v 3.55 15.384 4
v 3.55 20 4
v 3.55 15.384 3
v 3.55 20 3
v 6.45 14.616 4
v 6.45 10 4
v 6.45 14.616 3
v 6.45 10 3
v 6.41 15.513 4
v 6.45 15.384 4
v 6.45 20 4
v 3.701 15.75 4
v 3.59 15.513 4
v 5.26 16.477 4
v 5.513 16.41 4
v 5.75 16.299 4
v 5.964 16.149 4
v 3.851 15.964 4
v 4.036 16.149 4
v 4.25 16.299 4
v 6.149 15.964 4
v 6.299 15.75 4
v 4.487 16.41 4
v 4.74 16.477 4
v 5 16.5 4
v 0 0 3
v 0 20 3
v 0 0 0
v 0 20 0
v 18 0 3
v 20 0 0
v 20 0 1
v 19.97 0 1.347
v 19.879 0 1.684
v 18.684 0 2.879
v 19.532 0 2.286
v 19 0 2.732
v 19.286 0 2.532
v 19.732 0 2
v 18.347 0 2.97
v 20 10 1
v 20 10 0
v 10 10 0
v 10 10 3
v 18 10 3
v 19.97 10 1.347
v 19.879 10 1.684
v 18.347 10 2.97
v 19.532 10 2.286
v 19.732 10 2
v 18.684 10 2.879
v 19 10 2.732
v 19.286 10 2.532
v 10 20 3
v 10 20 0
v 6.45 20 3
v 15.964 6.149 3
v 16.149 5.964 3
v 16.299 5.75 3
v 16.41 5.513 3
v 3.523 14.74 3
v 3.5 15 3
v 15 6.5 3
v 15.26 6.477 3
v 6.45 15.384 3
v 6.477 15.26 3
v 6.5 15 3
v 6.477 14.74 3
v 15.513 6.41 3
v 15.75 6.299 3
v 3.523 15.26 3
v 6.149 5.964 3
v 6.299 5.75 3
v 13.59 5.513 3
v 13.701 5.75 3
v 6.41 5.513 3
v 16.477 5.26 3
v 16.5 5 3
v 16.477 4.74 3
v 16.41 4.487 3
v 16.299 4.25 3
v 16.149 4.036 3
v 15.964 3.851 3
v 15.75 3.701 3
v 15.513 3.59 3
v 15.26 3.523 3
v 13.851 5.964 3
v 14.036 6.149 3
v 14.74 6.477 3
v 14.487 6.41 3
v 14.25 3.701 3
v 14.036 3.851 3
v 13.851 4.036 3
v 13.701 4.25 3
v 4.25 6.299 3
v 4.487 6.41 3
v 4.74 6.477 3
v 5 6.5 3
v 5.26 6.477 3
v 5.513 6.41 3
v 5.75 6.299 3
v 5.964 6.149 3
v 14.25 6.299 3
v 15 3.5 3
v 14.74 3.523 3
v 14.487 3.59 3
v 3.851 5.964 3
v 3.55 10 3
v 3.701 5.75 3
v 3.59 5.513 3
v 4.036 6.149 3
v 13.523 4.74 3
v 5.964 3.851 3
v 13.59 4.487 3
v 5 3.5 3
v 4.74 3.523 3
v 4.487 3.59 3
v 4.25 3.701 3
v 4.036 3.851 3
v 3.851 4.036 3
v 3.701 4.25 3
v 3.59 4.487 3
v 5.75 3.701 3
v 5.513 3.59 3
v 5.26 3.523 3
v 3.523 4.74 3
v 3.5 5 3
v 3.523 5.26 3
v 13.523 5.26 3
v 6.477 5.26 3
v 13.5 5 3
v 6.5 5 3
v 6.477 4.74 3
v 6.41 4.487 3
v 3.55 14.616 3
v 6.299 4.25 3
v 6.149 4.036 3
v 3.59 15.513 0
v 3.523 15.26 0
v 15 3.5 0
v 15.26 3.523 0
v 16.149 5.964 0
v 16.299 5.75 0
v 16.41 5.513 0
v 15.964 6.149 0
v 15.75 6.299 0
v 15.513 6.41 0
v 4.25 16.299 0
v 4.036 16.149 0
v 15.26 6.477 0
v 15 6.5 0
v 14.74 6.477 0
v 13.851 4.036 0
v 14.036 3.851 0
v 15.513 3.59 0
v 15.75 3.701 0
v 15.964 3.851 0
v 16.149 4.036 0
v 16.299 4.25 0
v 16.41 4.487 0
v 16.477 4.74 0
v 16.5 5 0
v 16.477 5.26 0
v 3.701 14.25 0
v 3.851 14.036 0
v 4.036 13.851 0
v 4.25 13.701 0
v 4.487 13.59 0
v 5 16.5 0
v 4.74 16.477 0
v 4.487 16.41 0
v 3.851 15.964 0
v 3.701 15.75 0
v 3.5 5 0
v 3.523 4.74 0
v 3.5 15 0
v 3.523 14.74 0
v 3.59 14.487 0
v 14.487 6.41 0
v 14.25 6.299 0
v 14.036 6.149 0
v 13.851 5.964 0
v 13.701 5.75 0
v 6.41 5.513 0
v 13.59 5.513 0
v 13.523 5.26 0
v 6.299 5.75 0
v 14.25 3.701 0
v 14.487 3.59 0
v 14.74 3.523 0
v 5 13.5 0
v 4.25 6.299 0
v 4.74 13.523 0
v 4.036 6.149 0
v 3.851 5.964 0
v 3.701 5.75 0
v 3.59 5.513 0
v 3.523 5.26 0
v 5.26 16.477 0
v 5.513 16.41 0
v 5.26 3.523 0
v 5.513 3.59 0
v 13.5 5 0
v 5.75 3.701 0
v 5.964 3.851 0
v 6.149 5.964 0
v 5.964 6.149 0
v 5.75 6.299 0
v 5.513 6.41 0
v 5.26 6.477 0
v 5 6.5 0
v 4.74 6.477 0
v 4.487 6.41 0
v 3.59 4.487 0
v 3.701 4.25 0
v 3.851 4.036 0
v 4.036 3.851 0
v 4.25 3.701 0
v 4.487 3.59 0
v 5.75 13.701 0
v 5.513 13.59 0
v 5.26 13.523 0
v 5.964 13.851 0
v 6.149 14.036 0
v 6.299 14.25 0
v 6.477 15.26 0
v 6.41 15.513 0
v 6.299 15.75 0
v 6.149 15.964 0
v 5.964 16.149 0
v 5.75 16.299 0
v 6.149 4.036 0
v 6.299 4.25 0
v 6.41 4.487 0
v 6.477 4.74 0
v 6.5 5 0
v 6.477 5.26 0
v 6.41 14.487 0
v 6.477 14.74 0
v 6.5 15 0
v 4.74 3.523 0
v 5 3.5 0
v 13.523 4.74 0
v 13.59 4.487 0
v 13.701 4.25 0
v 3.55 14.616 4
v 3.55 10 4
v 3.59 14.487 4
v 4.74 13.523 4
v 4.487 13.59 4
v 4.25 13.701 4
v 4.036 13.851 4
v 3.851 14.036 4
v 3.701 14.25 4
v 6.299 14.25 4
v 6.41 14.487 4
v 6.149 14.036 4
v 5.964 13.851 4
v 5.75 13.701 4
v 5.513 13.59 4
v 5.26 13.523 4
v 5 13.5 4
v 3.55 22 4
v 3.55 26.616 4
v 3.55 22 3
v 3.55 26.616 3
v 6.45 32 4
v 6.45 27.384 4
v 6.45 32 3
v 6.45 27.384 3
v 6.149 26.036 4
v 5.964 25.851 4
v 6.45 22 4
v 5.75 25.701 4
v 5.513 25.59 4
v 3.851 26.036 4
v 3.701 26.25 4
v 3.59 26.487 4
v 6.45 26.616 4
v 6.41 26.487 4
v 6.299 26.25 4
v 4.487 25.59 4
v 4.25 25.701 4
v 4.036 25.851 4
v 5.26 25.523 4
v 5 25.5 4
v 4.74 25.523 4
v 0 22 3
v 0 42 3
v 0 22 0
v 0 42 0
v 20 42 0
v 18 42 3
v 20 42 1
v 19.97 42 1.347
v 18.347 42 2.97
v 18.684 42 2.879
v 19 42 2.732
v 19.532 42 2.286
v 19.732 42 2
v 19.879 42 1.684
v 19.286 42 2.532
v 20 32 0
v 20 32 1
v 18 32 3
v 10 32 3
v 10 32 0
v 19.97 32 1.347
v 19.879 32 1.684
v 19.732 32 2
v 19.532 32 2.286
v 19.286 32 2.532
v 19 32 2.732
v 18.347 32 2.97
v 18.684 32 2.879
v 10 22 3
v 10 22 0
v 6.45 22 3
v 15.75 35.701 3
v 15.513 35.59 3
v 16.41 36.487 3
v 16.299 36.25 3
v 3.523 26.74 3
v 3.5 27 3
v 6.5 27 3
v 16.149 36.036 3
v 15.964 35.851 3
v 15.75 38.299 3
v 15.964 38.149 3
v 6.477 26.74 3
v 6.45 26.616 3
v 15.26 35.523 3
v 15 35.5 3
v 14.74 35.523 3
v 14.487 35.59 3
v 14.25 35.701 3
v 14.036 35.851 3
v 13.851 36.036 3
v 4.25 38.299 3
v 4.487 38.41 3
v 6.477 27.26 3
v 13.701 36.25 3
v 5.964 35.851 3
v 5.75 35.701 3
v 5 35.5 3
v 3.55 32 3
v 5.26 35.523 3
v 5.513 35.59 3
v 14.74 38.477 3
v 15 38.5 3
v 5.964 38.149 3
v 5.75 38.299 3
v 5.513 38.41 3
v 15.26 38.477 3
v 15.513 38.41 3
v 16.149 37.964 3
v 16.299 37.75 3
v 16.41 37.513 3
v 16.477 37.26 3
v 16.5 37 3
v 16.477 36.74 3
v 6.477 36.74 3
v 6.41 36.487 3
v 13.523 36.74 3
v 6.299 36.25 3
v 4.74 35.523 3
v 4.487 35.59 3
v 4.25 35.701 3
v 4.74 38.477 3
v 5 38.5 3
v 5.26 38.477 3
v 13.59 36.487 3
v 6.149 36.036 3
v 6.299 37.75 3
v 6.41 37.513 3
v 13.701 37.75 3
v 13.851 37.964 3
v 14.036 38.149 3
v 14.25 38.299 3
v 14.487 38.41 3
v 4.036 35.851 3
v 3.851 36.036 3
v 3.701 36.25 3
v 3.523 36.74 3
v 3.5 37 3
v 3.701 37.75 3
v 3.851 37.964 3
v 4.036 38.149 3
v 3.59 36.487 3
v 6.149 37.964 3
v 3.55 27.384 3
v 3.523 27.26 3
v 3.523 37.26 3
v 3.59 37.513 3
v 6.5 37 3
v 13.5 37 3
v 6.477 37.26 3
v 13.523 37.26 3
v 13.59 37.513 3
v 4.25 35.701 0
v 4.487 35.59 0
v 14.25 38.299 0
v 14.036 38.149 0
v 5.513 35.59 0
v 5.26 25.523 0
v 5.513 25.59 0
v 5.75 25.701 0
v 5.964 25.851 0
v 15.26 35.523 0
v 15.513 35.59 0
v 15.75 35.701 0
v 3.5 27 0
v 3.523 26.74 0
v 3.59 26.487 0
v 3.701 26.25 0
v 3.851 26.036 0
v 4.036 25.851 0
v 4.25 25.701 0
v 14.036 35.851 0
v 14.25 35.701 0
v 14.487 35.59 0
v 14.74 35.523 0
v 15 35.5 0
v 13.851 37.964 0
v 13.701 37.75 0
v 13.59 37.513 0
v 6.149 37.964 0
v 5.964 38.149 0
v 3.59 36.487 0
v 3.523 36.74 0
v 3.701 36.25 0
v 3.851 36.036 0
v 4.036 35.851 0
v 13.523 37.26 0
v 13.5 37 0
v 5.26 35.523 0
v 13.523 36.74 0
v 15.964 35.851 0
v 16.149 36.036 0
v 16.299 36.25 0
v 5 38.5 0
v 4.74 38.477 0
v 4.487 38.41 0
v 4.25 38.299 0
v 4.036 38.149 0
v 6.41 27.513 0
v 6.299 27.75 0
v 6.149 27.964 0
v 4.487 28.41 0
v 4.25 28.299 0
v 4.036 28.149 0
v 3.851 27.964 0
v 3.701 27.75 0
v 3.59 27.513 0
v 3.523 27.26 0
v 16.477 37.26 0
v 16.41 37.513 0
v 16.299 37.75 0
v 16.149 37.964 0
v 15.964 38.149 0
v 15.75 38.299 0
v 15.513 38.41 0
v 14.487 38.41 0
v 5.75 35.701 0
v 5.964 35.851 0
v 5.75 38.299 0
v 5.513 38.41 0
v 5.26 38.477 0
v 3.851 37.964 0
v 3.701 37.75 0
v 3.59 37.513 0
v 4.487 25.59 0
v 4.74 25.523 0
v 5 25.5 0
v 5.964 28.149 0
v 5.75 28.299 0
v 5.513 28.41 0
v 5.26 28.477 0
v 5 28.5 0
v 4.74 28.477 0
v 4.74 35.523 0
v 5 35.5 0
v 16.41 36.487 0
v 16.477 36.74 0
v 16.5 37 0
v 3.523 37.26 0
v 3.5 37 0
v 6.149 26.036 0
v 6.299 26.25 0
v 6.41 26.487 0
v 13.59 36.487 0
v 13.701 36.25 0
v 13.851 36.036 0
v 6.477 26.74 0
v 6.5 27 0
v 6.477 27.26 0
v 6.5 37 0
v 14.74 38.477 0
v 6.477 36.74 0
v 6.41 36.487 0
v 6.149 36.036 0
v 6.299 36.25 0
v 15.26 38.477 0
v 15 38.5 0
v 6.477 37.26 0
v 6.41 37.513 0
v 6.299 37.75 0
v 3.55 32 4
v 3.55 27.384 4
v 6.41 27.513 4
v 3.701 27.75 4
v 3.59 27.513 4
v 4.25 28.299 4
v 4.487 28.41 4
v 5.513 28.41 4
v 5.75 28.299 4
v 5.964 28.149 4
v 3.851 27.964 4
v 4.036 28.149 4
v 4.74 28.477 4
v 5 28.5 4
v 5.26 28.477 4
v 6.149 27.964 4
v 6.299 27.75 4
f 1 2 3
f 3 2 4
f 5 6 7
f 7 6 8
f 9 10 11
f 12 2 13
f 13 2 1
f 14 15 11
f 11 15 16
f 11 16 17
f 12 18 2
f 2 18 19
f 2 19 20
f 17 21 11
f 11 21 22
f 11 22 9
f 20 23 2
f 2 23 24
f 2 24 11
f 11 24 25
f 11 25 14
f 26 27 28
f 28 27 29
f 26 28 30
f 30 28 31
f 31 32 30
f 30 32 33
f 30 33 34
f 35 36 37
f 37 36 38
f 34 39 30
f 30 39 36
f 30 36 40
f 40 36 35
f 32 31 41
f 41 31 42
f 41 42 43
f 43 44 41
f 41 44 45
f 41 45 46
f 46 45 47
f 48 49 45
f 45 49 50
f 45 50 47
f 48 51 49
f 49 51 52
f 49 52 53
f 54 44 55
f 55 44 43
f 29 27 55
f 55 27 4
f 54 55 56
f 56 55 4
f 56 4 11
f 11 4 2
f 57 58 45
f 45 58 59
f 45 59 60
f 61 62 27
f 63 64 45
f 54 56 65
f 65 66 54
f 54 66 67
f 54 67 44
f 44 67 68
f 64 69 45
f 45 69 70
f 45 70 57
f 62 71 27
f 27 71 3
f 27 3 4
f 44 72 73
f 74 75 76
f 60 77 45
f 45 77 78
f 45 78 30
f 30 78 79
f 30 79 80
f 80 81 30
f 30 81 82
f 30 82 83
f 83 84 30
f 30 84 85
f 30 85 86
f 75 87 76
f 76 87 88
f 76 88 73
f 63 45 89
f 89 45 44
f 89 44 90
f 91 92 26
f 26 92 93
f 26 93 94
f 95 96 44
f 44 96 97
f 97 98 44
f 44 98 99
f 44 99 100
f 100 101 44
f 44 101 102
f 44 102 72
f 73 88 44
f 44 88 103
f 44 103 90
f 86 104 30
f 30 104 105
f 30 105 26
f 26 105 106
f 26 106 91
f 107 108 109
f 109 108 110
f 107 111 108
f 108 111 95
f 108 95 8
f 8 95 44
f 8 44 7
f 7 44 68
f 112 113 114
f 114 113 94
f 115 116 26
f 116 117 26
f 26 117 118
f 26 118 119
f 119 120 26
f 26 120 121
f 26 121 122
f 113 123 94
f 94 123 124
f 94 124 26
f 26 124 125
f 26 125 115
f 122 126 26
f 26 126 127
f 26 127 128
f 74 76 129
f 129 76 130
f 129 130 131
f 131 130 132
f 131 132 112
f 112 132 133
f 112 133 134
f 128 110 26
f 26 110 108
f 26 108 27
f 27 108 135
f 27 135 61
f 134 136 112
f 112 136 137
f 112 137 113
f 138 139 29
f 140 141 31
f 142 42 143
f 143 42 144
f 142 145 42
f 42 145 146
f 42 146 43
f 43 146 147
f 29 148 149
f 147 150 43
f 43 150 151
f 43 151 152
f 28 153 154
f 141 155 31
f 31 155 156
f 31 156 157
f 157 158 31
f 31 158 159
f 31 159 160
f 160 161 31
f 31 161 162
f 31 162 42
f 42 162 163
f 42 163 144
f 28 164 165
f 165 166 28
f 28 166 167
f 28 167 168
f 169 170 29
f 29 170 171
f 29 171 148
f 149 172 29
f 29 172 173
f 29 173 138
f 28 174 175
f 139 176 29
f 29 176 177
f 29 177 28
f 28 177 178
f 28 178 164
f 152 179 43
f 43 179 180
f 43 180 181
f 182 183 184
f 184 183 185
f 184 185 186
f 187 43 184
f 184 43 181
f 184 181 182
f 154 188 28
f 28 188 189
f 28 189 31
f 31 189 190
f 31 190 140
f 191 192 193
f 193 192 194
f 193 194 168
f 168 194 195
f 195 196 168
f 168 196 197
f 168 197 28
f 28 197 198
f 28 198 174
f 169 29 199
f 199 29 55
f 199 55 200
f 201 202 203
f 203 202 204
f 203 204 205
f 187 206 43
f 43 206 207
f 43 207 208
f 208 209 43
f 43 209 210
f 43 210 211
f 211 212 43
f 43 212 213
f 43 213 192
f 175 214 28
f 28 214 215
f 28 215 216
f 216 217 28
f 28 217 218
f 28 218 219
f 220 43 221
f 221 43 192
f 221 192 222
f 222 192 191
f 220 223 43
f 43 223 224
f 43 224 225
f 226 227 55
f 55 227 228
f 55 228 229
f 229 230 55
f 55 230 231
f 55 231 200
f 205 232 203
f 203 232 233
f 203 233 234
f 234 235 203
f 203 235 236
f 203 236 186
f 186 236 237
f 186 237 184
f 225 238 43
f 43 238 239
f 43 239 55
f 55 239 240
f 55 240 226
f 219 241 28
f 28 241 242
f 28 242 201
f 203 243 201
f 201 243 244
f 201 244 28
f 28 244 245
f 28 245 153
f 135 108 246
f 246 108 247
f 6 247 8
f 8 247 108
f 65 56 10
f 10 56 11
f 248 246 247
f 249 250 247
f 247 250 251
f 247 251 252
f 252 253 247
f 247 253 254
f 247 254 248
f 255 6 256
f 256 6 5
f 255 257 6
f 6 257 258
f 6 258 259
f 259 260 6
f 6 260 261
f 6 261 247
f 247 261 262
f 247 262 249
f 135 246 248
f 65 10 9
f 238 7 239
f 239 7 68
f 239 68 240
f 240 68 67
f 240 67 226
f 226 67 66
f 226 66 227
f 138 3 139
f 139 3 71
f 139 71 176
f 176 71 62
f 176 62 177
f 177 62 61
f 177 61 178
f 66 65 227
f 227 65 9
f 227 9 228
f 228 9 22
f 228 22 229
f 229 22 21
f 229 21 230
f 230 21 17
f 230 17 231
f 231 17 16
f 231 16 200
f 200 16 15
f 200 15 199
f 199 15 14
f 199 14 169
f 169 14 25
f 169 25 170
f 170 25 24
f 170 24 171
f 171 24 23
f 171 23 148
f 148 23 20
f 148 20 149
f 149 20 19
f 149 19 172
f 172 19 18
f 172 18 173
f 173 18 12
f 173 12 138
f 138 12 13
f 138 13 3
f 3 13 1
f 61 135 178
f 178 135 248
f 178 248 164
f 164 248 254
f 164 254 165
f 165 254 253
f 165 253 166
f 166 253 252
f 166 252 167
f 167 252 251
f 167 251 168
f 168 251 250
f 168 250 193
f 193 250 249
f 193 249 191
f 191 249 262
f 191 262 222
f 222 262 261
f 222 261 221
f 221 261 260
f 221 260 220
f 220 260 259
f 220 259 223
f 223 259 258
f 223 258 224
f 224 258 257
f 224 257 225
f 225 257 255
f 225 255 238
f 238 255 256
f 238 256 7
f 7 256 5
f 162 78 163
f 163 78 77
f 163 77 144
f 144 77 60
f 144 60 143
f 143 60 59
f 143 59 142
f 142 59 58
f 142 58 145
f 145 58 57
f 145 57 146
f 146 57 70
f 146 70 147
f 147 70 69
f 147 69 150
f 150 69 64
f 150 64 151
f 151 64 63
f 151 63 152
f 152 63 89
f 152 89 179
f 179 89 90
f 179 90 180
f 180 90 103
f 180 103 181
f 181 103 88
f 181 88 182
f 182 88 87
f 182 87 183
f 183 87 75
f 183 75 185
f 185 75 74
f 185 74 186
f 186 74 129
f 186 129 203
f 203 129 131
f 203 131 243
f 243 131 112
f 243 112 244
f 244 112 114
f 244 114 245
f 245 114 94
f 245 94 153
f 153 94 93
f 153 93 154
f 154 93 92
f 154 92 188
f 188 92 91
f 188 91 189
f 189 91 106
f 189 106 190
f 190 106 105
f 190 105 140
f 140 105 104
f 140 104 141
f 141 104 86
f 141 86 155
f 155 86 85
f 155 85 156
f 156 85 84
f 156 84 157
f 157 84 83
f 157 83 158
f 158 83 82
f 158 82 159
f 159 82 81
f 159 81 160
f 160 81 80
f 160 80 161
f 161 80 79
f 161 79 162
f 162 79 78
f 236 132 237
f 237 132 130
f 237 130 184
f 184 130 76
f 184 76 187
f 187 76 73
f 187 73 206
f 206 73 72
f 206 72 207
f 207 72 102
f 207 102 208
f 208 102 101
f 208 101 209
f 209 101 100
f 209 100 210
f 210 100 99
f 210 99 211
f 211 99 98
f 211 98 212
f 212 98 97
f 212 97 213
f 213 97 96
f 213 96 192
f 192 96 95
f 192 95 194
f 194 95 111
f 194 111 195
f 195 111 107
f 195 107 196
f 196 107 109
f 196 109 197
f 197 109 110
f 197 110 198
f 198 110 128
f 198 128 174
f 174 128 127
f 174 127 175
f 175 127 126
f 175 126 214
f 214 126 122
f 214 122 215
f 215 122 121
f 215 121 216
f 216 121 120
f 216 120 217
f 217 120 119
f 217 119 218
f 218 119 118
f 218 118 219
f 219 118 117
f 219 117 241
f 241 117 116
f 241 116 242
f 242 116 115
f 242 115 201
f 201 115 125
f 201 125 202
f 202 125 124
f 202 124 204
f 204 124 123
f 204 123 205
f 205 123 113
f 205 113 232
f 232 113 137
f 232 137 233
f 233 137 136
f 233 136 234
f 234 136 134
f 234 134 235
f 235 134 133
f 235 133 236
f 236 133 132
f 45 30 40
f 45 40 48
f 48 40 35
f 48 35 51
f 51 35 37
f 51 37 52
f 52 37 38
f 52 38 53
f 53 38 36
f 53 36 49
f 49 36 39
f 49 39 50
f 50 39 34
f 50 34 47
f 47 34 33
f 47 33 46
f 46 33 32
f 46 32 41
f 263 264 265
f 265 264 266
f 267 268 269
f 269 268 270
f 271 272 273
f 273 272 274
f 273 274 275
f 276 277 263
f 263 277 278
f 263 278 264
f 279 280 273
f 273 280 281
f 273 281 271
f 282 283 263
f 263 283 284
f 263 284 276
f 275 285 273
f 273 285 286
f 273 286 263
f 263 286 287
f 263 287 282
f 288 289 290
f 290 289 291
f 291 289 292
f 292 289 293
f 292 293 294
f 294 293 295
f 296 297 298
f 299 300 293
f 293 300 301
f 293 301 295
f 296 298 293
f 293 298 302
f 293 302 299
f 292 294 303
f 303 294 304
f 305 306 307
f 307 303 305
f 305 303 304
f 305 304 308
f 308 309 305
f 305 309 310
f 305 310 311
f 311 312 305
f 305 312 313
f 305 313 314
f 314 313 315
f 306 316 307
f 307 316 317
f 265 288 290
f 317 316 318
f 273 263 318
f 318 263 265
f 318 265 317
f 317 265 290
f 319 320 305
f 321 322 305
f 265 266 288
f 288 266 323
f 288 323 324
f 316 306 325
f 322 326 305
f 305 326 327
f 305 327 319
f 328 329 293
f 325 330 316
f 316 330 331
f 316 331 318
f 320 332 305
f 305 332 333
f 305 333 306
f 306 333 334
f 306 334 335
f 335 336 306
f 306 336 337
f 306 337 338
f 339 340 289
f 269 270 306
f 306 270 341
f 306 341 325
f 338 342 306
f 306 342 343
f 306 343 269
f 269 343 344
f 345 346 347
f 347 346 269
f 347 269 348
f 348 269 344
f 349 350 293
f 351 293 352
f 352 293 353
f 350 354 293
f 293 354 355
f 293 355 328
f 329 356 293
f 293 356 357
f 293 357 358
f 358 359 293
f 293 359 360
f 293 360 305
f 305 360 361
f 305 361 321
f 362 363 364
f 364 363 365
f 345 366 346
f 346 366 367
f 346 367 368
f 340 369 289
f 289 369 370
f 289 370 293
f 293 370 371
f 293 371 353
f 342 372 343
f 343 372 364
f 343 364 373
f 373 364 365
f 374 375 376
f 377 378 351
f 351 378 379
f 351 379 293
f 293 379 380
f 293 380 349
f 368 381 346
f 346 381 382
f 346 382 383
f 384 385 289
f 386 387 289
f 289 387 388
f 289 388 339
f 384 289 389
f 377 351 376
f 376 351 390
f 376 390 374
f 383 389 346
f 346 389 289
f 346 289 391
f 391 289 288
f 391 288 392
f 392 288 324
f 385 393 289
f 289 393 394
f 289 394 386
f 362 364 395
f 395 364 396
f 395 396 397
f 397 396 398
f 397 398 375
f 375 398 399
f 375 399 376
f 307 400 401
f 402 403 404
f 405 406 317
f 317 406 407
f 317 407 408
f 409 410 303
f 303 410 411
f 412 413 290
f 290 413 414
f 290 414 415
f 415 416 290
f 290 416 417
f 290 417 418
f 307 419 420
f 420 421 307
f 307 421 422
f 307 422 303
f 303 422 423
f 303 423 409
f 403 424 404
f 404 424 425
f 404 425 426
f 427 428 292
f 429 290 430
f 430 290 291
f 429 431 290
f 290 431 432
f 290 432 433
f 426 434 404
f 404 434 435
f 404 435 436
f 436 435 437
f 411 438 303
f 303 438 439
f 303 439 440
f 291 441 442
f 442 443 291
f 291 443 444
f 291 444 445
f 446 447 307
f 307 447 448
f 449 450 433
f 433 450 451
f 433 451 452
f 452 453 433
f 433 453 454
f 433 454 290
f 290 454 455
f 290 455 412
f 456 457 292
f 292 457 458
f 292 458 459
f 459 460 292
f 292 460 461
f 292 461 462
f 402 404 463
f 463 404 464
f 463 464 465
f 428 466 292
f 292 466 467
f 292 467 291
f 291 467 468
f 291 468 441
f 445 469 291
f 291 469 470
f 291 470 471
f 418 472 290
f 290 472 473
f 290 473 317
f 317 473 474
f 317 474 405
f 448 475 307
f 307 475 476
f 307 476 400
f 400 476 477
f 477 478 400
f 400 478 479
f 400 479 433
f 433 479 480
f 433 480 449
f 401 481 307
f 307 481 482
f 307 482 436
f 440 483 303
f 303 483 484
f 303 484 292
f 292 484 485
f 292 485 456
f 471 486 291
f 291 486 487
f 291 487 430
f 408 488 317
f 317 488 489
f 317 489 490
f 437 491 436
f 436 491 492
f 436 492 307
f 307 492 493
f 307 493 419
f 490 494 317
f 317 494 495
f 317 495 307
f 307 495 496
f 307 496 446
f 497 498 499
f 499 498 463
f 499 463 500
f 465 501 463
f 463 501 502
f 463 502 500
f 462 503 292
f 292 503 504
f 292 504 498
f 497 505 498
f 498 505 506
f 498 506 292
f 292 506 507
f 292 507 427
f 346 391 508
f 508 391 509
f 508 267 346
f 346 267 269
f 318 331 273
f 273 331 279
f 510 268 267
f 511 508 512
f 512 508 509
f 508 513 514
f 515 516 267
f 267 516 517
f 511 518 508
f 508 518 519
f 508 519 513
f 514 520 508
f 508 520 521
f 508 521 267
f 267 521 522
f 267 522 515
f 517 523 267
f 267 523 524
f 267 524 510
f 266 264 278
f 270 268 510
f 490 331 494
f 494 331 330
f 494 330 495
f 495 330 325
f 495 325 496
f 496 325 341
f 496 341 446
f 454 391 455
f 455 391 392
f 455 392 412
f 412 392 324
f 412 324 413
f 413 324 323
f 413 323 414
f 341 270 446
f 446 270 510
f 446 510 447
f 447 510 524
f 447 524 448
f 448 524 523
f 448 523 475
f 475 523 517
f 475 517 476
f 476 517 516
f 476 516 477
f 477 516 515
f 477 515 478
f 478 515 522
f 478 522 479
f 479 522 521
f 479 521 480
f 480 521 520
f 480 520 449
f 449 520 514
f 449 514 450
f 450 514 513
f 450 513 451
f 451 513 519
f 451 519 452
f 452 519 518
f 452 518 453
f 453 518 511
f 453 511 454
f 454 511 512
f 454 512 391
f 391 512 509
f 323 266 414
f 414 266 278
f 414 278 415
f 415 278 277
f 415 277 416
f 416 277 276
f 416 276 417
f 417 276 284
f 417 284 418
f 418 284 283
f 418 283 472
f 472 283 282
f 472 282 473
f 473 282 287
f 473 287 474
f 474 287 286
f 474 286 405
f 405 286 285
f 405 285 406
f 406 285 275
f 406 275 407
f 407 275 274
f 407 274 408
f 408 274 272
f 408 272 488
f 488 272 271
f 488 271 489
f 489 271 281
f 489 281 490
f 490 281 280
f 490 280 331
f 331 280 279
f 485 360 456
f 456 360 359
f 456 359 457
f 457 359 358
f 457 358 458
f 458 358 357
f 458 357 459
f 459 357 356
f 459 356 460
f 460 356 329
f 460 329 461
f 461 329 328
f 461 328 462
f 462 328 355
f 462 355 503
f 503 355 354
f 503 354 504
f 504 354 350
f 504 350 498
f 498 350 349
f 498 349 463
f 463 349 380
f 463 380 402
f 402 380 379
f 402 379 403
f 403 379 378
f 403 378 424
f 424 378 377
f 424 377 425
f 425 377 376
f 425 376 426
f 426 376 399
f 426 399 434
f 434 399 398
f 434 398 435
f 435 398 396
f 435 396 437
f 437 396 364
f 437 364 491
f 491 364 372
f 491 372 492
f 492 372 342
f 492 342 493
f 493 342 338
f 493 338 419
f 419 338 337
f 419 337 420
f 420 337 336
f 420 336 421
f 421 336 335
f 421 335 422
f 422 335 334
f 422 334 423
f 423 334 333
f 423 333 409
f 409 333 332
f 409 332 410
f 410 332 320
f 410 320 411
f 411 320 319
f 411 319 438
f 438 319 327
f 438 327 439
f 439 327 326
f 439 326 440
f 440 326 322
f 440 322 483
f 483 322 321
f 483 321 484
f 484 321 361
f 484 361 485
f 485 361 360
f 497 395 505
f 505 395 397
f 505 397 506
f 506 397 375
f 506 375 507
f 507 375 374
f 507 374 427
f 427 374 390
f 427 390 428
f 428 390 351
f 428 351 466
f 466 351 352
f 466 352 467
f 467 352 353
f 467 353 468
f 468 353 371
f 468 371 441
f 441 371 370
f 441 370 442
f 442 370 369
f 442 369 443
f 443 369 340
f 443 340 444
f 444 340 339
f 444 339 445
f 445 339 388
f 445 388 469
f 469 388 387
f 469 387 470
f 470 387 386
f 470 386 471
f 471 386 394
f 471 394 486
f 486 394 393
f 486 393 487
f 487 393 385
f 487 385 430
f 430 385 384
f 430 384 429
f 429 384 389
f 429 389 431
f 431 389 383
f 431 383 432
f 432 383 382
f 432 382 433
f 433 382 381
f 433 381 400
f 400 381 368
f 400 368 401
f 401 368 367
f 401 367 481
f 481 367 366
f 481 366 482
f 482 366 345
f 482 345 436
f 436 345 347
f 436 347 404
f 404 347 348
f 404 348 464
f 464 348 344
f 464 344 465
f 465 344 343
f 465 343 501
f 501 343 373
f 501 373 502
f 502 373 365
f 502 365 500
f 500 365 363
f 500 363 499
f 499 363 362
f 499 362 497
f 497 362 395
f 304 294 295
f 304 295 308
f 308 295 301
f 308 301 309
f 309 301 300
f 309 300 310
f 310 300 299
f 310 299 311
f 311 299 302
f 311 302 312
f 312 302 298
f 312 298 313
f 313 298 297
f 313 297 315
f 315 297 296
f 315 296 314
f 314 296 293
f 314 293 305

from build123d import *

# Parameters (mm, degrees)
BOSS_EXTRU_1_DEPTH      = 3
ESQUISSE2_W             = 2.9
ESQUISSE2_H             = 10
BOSS_EXTRU_2_DEPTH      = 1
ESQUISSE4_R             = 1.5
ENL_V_MAT_EXTRU_2_DEPTH = 5
CONG_1_R                = 2


with BuildPart() as part:
    # Esquisse1 → Boss.-Extru.1 (new body)
    with BuildSketch(Plane.XY):
        Polygon((0, 0), (20, 0), (20, 10), (10, 10), (10, 20), (0, 20), align=None)
    extrude(amount=BOSS_EXTRU_1_DEPTH)

    # Esquisse2 → Boss.-Extru.2 (add)
    with BuildSketch(Plane.XY.offset(3)):
        with Locations((5, 15)):
            Rectangle(ESQUISSE2_W, ESQUISSE2_H)
    extrude(amount=BOSS_EXTRU_2_DEPTH)

    # Esquisse4 → Enlèv. mat.-Extru.2 (cut, through all)
    with BuildSketch(Plane.XY.offset(4)):
        with Locations((5, 15)):
            Circle(ESQUISSE4_R)
        with Locations((5, 5)):
            Circle(ESQUISSE4_R)
        with Locations((15, 5)):
            Circle(ESQUISSE4_R)
    extrude(amount=-ENL_V_MAT_EXTRU_2_DEPTH, mode=Mode.SUBTRACT)

    # Congé1
    cong_1_edges = [part.edges().sort_by_distance(p)[0] for p in [
        (20, 5, 3),
    ]]
    fillet(cong_1_edges, radius=CONG_1_R)


with BuildPart() as body_2:
    # Symétrie2: mirrored copy
    add(part.part.mirror(Plane.ZX.offset(21)))


solid = Compound([part.part, body_2.part])
